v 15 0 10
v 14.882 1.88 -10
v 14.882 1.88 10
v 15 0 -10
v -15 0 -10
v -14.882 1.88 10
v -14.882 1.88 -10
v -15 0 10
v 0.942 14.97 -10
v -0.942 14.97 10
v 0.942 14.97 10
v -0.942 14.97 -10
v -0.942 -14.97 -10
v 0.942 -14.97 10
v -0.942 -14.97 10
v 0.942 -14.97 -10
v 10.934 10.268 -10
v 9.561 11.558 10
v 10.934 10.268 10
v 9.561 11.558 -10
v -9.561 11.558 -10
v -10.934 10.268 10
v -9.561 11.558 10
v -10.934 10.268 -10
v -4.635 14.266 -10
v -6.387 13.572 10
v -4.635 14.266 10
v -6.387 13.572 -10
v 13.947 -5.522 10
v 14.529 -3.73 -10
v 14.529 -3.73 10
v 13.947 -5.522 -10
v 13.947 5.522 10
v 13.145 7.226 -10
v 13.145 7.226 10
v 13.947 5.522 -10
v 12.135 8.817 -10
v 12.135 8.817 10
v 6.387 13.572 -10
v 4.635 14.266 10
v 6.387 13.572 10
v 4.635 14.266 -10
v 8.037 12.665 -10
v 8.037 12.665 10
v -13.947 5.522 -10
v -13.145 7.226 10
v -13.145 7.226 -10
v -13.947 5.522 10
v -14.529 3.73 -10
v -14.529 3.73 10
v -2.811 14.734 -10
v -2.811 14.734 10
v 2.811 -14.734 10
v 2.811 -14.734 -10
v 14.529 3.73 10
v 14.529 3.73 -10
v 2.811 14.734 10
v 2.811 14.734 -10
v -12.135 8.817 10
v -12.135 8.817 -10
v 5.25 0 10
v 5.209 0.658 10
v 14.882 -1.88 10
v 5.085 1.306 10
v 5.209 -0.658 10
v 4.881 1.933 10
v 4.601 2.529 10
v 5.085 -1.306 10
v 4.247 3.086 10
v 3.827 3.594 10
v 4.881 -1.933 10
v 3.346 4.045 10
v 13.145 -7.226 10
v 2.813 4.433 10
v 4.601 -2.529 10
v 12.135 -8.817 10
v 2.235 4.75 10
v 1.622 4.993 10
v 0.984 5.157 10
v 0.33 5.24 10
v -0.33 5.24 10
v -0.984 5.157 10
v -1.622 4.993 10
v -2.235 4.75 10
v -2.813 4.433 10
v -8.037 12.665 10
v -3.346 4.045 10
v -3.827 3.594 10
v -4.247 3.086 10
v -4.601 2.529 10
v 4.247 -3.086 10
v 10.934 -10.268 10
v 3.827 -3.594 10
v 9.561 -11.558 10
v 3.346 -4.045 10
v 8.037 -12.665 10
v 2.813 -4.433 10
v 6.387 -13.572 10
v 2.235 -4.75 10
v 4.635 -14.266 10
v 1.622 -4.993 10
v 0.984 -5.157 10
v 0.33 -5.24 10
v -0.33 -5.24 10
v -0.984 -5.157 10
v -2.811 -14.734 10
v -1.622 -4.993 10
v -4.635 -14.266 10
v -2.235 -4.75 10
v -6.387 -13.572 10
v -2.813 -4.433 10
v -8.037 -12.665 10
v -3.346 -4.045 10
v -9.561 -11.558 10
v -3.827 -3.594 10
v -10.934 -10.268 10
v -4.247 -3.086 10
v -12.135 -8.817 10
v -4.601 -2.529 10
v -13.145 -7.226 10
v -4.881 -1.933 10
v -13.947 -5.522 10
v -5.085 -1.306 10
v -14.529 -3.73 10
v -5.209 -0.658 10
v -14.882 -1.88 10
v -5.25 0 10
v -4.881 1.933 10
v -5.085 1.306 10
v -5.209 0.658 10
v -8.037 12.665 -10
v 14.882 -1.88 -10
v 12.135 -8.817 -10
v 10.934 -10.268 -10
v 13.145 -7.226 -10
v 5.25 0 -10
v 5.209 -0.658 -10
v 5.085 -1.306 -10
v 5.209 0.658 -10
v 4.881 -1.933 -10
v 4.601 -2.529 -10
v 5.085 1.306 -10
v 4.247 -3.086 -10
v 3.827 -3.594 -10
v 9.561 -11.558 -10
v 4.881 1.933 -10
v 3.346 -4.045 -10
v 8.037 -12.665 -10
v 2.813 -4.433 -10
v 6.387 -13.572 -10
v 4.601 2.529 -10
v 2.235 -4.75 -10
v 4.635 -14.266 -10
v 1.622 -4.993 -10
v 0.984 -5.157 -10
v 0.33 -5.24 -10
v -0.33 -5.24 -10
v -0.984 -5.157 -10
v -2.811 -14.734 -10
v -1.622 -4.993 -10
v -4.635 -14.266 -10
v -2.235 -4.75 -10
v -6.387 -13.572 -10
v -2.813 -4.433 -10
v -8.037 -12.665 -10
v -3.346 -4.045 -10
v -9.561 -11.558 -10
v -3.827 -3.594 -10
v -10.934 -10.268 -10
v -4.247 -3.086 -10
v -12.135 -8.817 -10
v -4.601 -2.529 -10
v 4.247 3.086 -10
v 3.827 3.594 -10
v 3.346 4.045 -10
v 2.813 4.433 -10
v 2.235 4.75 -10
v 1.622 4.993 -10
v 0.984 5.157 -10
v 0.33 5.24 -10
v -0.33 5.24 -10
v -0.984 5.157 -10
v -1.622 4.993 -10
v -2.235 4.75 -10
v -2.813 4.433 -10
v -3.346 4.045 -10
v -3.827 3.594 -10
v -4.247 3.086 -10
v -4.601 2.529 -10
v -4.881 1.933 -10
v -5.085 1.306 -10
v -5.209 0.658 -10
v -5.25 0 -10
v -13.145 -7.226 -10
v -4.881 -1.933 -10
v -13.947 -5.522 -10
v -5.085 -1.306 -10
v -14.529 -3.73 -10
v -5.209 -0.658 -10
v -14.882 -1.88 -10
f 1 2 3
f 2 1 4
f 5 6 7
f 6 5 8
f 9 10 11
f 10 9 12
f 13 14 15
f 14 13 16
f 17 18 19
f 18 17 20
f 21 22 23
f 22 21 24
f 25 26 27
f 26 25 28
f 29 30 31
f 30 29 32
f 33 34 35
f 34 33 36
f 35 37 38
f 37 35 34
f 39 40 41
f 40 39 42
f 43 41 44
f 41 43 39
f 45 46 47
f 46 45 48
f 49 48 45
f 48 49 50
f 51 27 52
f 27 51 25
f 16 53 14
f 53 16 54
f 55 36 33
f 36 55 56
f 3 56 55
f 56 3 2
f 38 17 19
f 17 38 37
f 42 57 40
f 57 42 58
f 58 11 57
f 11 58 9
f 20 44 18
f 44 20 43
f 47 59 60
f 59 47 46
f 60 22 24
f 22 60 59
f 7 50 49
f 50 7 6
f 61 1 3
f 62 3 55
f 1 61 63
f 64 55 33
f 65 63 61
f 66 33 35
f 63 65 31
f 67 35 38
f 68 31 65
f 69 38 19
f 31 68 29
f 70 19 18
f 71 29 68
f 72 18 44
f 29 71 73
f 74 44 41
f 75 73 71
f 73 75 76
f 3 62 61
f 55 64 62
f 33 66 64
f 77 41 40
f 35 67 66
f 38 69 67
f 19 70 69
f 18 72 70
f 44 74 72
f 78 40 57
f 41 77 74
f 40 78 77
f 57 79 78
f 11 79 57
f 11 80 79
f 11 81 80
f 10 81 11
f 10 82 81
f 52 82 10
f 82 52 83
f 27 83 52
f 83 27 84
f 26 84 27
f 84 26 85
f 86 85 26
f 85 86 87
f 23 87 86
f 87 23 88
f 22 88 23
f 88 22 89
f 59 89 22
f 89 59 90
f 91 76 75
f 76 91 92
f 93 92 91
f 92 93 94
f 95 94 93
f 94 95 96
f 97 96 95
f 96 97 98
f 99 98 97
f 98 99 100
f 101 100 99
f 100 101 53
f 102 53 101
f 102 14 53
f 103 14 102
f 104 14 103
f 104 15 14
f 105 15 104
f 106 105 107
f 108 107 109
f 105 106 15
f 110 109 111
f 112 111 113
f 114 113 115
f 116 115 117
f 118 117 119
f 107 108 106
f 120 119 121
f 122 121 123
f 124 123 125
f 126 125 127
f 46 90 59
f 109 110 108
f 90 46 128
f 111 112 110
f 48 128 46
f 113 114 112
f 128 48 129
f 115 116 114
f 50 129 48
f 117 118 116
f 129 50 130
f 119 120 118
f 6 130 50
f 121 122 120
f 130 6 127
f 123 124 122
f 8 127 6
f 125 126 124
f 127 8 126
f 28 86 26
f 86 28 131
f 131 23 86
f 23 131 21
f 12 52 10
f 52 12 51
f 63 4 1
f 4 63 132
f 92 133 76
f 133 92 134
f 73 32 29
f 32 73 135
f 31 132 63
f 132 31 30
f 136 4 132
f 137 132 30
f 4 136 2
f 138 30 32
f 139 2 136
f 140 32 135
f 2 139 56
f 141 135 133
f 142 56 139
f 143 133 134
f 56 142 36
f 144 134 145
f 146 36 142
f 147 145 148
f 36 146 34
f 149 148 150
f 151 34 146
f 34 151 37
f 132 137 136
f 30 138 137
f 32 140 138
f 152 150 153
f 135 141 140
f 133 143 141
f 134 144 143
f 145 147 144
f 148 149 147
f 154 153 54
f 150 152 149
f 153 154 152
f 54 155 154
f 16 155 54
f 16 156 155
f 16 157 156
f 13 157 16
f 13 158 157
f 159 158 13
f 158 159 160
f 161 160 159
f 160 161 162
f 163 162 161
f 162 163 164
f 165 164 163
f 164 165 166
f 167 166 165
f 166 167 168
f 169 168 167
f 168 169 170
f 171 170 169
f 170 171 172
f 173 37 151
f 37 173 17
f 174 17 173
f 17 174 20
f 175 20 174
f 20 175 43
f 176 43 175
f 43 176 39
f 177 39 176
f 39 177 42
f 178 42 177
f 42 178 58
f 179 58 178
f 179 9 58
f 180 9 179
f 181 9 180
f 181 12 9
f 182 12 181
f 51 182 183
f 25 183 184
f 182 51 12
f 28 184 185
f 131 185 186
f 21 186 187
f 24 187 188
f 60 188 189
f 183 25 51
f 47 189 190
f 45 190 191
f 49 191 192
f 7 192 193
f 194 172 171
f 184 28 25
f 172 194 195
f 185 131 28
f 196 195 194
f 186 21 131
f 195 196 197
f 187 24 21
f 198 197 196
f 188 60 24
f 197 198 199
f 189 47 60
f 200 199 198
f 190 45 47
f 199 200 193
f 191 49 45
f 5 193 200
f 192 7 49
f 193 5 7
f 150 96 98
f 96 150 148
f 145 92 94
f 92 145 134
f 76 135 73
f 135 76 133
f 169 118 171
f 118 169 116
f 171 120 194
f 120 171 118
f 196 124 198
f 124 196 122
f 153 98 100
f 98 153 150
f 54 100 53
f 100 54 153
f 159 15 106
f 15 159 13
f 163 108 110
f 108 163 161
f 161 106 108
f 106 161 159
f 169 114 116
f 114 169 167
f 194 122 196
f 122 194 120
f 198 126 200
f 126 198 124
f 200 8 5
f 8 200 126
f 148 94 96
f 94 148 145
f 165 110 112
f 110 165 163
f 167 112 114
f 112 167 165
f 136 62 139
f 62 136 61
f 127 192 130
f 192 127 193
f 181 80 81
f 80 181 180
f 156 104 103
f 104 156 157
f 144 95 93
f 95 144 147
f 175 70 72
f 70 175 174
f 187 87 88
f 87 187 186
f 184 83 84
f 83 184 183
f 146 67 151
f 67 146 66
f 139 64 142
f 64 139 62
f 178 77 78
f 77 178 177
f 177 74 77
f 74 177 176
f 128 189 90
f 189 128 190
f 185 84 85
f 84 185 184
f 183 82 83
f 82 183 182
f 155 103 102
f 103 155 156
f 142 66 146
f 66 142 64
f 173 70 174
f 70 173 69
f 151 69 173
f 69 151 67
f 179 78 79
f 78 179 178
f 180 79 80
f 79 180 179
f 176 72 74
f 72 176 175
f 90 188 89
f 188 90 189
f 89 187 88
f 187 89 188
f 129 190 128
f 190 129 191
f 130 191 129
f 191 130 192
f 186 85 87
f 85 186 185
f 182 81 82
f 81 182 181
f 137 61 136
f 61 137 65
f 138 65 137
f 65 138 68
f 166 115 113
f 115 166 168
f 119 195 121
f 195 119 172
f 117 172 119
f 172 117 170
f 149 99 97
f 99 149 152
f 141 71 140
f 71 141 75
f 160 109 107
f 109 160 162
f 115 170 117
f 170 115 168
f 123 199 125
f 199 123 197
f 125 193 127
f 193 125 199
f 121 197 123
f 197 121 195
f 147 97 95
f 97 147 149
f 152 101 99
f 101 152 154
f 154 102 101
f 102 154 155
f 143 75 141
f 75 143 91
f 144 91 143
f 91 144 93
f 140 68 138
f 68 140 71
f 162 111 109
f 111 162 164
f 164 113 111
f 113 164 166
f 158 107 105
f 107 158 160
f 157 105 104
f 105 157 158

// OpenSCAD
$fn = 50;


difference() {
	union() {
		translate(v = [0, 0, -10.0000000000]) {
			cylinder(h = 20, r = 15.0000000000);
		}
	}
	union() {
		translate(v = [0, 0, -100.0000000000]) {
			cylinder(h = 200, r = 5.2500000000);
		}
	}
}
